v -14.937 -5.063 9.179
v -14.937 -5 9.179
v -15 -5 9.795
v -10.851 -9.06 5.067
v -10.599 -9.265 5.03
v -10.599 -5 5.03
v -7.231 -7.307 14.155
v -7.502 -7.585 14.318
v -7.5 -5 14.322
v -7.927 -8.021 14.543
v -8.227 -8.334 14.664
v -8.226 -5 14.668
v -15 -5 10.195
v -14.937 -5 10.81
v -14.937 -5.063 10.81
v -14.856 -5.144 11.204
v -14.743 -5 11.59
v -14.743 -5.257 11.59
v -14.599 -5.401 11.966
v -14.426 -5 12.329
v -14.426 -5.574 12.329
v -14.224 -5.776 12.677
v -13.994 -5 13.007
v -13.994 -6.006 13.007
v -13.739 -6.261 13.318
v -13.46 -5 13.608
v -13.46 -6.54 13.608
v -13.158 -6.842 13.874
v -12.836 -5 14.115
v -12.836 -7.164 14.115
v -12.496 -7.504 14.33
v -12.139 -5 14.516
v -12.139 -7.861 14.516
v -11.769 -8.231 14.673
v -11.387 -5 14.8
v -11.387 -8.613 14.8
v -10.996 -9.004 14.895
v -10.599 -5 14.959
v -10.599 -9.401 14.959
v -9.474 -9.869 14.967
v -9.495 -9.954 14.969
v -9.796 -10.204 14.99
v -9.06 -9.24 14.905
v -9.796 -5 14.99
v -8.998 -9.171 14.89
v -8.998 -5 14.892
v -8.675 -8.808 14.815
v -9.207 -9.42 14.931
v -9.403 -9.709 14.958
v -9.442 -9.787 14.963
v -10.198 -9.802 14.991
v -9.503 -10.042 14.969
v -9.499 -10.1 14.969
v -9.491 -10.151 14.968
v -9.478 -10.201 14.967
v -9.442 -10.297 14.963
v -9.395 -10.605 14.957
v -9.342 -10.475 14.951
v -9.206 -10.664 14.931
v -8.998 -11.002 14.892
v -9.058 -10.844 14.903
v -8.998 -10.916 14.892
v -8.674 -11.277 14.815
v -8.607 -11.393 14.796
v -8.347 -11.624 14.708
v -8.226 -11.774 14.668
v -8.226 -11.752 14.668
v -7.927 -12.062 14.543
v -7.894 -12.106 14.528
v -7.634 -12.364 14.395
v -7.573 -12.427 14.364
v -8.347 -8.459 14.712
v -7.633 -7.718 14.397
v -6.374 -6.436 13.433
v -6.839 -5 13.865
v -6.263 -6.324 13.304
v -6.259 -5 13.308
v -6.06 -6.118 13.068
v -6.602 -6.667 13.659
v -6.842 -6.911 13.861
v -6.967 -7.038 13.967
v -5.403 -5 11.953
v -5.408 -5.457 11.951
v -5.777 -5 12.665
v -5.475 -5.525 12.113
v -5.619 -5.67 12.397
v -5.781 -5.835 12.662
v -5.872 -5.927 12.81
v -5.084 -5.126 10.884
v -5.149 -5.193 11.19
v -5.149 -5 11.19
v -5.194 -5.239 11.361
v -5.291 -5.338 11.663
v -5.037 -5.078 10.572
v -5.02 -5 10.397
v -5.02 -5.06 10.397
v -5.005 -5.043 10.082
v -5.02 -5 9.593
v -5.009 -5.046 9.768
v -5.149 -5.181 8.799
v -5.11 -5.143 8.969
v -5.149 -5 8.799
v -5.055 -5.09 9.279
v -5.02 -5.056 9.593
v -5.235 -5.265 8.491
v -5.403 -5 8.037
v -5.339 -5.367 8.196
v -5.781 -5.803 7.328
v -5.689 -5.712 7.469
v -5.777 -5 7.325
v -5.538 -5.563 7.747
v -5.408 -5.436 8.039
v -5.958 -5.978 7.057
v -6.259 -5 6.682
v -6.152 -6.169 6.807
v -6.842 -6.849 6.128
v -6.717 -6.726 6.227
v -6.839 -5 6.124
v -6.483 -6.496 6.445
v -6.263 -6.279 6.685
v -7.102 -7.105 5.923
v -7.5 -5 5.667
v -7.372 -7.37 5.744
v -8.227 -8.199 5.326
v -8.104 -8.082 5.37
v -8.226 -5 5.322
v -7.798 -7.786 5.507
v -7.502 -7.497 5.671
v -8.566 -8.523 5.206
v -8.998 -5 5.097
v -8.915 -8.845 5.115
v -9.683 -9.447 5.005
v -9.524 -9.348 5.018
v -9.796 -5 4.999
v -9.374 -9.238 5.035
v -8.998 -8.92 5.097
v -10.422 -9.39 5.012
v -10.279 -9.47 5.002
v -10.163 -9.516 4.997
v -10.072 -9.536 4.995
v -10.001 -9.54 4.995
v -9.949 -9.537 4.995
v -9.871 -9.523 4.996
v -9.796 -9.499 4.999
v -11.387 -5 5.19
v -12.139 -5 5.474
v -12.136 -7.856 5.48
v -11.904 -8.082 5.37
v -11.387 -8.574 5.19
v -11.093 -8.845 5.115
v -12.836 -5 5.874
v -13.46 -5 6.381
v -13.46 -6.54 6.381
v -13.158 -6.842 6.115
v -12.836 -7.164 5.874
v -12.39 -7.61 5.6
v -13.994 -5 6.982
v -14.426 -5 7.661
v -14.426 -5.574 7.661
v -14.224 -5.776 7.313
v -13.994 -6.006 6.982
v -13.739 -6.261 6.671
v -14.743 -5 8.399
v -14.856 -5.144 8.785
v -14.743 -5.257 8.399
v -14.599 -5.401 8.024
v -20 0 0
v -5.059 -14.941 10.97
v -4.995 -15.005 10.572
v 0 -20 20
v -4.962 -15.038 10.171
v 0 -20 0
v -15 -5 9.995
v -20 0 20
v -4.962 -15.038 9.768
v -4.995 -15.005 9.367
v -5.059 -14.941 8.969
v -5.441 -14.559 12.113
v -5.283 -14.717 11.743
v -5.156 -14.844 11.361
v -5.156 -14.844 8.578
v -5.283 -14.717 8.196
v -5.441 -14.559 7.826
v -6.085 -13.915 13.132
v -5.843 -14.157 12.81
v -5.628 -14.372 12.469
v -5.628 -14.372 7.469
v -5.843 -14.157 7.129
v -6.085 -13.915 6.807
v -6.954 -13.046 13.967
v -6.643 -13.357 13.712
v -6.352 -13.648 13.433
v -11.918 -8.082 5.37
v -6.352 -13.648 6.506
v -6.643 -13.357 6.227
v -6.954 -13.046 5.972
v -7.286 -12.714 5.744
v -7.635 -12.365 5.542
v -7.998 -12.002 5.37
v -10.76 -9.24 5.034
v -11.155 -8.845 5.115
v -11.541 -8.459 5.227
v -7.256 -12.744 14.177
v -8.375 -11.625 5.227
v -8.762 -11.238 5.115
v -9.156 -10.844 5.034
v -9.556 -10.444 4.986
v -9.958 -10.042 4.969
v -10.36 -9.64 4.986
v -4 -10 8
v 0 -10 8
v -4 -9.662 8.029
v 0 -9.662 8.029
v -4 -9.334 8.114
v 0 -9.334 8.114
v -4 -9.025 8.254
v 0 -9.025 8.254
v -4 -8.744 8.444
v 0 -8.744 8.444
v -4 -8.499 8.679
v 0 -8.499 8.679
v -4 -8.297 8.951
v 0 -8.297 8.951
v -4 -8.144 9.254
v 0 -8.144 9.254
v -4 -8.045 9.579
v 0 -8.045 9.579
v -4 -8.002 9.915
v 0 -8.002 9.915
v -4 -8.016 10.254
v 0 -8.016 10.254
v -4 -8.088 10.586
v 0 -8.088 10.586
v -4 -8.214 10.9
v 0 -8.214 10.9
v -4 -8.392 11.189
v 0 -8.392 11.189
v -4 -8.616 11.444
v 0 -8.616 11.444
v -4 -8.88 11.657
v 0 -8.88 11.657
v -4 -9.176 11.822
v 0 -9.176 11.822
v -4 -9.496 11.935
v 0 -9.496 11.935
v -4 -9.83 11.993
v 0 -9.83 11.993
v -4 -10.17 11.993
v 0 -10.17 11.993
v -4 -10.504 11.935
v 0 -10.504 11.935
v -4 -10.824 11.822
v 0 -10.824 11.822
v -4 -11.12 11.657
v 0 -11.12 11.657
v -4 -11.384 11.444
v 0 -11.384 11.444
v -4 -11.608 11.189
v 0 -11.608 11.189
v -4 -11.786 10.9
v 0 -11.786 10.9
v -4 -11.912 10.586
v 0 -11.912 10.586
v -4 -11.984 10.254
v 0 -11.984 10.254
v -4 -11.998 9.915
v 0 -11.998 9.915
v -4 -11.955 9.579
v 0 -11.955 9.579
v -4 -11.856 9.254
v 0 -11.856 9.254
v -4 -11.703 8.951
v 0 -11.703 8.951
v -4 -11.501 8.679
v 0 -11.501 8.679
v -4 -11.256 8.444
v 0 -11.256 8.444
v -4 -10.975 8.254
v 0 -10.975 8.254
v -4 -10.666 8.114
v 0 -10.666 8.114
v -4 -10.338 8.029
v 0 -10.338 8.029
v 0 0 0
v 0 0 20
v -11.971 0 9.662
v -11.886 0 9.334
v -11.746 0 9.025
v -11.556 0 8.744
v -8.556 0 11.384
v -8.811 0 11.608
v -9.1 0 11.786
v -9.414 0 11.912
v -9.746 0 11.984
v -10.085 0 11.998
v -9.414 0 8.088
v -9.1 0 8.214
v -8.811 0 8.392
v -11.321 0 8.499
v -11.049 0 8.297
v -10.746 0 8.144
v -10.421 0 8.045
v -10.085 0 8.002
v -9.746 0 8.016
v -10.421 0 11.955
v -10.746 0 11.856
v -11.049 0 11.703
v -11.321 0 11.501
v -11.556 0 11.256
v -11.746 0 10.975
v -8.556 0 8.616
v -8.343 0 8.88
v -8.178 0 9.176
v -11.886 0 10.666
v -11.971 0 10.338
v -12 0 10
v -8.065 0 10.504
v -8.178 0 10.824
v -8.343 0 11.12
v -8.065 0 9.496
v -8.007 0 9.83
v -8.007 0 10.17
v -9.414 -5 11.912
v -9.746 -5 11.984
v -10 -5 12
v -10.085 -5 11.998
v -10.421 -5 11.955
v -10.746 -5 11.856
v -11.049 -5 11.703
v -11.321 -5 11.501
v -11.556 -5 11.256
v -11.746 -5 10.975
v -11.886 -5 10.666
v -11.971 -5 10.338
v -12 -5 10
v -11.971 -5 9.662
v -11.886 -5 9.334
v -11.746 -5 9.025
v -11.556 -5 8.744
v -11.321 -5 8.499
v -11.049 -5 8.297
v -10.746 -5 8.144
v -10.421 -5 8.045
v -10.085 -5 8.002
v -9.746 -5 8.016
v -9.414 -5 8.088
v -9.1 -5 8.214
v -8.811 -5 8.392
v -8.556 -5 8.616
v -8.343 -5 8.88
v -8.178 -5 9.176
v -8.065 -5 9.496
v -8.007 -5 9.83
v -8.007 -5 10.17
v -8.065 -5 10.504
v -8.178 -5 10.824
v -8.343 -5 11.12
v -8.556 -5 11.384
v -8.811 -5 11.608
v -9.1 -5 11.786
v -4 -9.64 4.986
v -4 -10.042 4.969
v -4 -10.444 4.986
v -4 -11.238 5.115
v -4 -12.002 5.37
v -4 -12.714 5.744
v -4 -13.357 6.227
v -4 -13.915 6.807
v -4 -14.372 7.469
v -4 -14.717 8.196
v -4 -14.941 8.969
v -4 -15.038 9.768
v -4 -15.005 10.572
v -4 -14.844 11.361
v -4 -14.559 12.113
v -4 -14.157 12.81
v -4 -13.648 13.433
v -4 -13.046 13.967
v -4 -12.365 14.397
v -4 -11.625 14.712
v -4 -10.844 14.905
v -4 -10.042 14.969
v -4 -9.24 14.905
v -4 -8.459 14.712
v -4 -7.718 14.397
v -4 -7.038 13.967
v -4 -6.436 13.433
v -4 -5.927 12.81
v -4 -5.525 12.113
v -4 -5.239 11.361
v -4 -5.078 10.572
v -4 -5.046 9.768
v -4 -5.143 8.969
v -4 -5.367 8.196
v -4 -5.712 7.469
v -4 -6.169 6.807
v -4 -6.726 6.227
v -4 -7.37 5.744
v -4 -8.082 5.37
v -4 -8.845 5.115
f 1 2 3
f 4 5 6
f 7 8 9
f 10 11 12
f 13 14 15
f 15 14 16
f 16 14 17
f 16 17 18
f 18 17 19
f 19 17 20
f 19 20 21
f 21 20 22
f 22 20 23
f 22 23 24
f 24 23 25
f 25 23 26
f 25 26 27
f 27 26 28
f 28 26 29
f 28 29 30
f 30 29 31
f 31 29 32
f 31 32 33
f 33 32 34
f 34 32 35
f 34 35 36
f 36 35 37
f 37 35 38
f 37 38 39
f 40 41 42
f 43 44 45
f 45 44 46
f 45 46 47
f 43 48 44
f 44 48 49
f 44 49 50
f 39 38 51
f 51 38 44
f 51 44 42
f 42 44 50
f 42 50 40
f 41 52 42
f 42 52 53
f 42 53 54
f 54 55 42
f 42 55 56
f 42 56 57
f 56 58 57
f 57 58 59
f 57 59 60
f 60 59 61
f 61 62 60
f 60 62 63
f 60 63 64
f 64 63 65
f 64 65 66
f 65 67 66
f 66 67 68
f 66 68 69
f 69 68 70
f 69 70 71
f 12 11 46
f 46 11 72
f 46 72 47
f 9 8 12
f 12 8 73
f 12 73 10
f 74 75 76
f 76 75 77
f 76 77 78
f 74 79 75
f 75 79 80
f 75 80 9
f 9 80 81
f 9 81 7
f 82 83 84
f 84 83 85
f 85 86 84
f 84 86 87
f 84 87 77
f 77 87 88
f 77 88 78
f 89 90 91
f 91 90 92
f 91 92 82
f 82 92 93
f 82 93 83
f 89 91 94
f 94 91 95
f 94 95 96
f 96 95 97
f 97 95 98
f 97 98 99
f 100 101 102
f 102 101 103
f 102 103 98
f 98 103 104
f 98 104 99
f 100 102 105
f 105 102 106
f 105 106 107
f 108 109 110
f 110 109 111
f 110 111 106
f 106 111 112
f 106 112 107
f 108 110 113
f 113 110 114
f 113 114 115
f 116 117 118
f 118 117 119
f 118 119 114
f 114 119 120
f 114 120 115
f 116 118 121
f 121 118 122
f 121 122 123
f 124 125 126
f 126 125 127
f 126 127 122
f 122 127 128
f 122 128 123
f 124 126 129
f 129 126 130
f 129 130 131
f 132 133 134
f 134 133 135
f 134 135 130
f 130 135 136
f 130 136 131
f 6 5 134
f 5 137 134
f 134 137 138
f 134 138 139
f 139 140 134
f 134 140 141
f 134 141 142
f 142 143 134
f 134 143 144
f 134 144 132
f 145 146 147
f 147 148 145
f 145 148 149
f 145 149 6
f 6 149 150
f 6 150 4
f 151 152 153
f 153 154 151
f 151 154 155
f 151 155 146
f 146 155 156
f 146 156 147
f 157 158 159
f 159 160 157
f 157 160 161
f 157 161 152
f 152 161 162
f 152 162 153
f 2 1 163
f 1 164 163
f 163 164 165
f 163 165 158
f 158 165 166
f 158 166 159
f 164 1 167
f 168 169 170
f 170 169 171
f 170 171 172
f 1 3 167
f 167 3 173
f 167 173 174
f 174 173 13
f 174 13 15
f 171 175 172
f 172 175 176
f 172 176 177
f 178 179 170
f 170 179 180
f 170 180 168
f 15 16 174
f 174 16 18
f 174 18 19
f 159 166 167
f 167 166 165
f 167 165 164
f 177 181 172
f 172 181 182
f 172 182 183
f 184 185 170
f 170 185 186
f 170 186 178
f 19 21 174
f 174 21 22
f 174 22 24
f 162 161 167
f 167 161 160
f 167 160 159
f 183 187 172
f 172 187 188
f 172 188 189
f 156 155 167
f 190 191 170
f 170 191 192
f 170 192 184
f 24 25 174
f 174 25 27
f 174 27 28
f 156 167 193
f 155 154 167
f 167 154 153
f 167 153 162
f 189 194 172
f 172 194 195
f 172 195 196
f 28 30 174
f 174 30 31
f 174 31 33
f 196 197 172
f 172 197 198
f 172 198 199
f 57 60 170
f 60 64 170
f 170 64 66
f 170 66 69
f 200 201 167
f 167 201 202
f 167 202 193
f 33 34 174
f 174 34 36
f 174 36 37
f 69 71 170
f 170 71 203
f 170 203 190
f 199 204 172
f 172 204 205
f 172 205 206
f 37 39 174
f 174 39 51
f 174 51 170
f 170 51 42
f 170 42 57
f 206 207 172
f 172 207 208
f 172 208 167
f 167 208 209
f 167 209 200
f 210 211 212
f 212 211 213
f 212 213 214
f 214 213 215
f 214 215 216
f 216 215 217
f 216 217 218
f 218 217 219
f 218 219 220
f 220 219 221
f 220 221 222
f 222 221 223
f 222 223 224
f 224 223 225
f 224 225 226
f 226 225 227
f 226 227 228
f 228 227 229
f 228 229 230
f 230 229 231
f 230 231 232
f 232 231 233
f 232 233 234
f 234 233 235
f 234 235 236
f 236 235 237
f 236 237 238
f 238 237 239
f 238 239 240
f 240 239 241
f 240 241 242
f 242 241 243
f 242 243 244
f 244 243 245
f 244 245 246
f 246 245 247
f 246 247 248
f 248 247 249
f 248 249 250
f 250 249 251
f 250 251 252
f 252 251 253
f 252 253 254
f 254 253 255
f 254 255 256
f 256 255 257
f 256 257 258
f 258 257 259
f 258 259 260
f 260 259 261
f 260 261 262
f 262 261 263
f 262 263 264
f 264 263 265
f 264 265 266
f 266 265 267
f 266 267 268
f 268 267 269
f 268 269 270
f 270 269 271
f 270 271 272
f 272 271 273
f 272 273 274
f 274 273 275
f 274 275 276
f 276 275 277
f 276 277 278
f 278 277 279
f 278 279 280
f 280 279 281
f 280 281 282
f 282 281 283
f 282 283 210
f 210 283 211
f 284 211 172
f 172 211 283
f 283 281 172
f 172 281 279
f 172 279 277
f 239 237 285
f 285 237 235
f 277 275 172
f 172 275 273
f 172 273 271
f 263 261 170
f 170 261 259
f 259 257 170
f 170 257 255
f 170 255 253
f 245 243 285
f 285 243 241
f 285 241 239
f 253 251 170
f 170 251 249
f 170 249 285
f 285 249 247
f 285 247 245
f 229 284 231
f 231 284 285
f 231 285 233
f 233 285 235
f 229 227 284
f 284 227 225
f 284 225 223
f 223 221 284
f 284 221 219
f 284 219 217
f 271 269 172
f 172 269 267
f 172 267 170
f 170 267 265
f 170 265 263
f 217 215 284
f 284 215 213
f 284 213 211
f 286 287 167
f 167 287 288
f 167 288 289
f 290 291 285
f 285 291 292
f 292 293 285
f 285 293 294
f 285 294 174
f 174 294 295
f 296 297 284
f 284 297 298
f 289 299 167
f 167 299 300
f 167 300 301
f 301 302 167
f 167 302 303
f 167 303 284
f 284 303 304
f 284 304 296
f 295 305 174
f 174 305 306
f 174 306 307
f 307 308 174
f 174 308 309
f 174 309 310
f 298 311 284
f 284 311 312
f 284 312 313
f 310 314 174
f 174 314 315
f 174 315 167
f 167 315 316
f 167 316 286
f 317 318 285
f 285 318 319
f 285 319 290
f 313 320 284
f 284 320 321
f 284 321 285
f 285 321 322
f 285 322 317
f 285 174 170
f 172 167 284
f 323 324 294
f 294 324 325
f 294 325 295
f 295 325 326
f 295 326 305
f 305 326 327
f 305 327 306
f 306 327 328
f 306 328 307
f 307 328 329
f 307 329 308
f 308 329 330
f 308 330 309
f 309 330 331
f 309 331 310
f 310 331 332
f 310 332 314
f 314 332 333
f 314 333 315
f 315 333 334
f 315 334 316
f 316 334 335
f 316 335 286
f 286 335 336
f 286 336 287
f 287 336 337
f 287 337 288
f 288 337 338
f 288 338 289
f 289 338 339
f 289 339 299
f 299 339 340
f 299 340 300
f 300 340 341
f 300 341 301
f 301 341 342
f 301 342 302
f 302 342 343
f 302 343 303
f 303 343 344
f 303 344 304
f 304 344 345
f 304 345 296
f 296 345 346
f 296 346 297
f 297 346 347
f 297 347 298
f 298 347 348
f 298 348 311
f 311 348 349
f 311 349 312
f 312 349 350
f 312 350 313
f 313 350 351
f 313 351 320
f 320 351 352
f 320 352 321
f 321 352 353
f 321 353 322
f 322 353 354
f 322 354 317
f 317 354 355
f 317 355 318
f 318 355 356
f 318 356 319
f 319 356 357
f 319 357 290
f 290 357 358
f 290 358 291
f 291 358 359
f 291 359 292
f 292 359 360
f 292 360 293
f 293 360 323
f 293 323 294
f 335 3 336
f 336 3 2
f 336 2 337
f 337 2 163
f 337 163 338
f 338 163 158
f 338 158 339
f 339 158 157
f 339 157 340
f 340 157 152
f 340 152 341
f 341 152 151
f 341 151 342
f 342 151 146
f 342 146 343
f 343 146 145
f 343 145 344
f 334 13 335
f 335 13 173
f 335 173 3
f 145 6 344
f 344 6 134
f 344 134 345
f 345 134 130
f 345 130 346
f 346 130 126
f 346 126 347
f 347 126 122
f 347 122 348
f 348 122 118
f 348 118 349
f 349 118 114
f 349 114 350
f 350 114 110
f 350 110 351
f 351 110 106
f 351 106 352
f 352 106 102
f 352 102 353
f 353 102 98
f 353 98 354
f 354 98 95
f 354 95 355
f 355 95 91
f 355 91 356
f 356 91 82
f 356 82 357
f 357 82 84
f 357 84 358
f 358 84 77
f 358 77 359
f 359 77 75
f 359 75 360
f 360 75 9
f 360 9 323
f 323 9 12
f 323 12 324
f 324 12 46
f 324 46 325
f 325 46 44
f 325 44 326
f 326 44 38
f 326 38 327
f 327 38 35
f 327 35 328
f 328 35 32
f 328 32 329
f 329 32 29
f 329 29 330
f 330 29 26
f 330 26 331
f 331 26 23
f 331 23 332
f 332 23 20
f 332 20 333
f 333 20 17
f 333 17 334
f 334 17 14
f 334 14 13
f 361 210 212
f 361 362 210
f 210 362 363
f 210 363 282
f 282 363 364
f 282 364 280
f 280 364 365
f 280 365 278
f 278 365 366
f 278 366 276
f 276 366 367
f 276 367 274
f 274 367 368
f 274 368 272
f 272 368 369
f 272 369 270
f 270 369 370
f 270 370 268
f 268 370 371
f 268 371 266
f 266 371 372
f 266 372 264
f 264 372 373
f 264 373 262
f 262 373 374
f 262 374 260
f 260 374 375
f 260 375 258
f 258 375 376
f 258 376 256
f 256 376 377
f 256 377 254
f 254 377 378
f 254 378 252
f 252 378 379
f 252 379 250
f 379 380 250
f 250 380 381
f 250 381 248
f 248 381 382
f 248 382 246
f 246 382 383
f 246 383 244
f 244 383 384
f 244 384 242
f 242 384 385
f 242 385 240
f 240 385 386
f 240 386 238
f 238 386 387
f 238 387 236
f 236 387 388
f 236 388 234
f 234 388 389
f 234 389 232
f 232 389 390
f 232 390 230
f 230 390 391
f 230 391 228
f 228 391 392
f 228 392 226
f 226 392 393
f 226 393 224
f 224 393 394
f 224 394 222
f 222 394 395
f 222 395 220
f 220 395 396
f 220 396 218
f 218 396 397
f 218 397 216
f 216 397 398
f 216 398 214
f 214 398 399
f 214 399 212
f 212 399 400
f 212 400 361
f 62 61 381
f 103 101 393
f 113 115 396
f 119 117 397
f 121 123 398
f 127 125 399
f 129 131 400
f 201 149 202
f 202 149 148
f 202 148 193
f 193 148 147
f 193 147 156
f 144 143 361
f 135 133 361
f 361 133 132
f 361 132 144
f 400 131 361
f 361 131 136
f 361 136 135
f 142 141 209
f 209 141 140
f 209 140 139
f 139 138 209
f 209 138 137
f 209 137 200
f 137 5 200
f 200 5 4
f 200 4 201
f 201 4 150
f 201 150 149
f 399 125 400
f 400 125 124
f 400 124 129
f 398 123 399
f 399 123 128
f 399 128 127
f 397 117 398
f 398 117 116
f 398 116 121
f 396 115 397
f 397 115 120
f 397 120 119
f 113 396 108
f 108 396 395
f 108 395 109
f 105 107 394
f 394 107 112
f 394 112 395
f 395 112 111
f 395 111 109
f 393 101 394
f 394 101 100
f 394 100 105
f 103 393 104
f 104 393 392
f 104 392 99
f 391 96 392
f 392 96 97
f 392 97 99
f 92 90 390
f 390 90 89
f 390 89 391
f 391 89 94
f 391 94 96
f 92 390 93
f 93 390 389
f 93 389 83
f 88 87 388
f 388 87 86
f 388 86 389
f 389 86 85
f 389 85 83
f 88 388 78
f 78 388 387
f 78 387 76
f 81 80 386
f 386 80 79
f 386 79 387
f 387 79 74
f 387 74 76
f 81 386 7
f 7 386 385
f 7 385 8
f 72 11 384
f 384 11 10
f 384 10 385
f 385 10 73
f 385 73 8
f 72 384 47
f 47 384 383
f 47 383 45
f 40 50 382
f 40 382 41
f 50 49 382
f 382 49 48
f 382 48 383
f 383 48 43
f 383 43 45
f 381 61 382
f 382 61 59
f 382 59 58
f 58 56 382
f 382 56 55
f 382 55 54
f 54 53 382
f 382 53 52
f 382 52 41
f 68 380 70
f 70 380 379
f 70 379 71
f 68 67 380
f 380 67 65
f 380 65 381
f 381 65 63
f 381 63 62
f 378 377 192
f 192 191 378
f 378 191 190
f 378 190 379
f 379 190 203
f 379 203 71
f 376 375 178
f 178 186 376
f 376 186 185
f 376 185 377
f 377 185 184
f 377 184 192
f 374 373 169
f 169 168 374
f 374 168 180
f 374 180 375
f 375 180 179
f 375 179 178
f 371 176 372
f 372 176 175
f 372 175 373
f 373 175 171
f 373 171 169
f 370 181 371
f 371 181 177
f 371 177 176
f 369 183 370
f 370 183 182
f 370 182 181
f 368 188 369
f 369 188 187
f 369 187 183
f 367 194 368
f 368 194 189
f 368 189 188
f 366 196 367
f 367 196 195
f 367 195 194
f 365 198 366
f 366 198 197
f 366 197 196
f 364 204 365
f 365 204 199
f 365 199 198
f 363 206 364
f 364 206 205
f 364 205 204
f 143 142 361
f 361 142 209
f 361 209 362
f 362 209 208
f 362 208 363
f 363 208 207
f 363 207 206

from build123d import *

# Parameters (mm, degrees)
BOSS_EXTRU_1_DEPTH           = 20
ESQUISSE2_R                  = 2
ENL_V_MAT_EXTRU_1_DEPTH      = 35.641016151
ESQUISSE3_R                  = 2
ENL_V_MAT_EXTRU_2_DEPTH      = 35.641016151
ENL_V_MAT_EXTRU_3_DEPTH      = 5
ENL_V_MAT_EXTRU_3_DEPTH_BACK = 5
ESQUISSE6_R                  = 5
ENL_V_MAT_EXTRU_4_DEPTH      = 6
ENL_V_MAT_EXTRU_4_DEPTH_BACK = 5
ESQUISSE9_R                  = 5


with BuildPart() as part:
    # Esquisse1 → Boss.-Extru.1 (new body)
    with BuildSketch(Plane.XY):
        Polygon((0, 0), (-20, 0), (0, -20), align=None)
    extrude(amount=BOSS_EXTRU_1_DEPTH)

    # Esquisse2 → Enlèv. mat.-Extru.1 (cut, through all)
    with BuildSketch(Plane(origin=(0, 0, 0), x_dir=(1, 0, 0), z_dir=(0, 1, 0))):
        with Locations(Location((-10, -10, 0), (0, 0, 180))):
            Circle(ESQUISSE2_R)
    extrude(amount=-ENL_V_MAT_EXTRU_1_DEPTH, mode=Mode.SUBTRACT)

    # Esquisse3 → Enlèv. mat.-Extru.2 (cut, through all)
    with BuildSketch(Plane(origin=(0, 0, 0), x_dir=(0, 0, -1), z_dir=(1, 0, 0))):
        with Locations((-10, -10)):
            Circle(ESQUISSE3_R)
    extrude(amount=-ENL_V_MAT_EXTRU_2_DEPTH, mode=Mode.SUBTRACT)

    # Esquisse6 → Enlèv. mat.-Extru.3 (cut, two sides: drawn at the far end of the back side and taken through both)
    with BuildSketch(Plane(origin=(0, -10, 0), x_dir=(1, 0, 0), z_dir=(0, 1, 0)).offset(-ENL_V_MAT_EXTRU_3_DEPTH_BACK)):
        with Locations((-10.004008989, -9.994708572)):
            Circle(ESQUISSE6_R)
    extrude(amount=ENL_V_MAT_EXTRU_3_DEPTH + ENL_V_MAT_EXTRU_3_DEPTH_BACK, mode=Mode.SUBTRACT)

    # Esquisse9 → Enlèv. mat.-Extru.4 (cut, two sides: drawn at the far end of the back side and taken through both)
    with BuildSketch(Plane(origin=(-10, 0, 0), x_dir=(0, 0, -1), z_dir=(1, 0, 0)).offset(-ENL_V_MAT_EXTRU_4_DEPTH_BACK)):
        with Locations(Location((-9.969497879, -10.041855886, 0), (0, 0, 208.496581374))):
            Circle(ESQUISSE9_R)
    extrude(amount=ENL_V_MAT_EXTRU_4_DEPTH + ENL_V_MAT_EXTRU_4_DEPTH_BACK, mode=Mode.SUBTRACT)


solid = part.part
